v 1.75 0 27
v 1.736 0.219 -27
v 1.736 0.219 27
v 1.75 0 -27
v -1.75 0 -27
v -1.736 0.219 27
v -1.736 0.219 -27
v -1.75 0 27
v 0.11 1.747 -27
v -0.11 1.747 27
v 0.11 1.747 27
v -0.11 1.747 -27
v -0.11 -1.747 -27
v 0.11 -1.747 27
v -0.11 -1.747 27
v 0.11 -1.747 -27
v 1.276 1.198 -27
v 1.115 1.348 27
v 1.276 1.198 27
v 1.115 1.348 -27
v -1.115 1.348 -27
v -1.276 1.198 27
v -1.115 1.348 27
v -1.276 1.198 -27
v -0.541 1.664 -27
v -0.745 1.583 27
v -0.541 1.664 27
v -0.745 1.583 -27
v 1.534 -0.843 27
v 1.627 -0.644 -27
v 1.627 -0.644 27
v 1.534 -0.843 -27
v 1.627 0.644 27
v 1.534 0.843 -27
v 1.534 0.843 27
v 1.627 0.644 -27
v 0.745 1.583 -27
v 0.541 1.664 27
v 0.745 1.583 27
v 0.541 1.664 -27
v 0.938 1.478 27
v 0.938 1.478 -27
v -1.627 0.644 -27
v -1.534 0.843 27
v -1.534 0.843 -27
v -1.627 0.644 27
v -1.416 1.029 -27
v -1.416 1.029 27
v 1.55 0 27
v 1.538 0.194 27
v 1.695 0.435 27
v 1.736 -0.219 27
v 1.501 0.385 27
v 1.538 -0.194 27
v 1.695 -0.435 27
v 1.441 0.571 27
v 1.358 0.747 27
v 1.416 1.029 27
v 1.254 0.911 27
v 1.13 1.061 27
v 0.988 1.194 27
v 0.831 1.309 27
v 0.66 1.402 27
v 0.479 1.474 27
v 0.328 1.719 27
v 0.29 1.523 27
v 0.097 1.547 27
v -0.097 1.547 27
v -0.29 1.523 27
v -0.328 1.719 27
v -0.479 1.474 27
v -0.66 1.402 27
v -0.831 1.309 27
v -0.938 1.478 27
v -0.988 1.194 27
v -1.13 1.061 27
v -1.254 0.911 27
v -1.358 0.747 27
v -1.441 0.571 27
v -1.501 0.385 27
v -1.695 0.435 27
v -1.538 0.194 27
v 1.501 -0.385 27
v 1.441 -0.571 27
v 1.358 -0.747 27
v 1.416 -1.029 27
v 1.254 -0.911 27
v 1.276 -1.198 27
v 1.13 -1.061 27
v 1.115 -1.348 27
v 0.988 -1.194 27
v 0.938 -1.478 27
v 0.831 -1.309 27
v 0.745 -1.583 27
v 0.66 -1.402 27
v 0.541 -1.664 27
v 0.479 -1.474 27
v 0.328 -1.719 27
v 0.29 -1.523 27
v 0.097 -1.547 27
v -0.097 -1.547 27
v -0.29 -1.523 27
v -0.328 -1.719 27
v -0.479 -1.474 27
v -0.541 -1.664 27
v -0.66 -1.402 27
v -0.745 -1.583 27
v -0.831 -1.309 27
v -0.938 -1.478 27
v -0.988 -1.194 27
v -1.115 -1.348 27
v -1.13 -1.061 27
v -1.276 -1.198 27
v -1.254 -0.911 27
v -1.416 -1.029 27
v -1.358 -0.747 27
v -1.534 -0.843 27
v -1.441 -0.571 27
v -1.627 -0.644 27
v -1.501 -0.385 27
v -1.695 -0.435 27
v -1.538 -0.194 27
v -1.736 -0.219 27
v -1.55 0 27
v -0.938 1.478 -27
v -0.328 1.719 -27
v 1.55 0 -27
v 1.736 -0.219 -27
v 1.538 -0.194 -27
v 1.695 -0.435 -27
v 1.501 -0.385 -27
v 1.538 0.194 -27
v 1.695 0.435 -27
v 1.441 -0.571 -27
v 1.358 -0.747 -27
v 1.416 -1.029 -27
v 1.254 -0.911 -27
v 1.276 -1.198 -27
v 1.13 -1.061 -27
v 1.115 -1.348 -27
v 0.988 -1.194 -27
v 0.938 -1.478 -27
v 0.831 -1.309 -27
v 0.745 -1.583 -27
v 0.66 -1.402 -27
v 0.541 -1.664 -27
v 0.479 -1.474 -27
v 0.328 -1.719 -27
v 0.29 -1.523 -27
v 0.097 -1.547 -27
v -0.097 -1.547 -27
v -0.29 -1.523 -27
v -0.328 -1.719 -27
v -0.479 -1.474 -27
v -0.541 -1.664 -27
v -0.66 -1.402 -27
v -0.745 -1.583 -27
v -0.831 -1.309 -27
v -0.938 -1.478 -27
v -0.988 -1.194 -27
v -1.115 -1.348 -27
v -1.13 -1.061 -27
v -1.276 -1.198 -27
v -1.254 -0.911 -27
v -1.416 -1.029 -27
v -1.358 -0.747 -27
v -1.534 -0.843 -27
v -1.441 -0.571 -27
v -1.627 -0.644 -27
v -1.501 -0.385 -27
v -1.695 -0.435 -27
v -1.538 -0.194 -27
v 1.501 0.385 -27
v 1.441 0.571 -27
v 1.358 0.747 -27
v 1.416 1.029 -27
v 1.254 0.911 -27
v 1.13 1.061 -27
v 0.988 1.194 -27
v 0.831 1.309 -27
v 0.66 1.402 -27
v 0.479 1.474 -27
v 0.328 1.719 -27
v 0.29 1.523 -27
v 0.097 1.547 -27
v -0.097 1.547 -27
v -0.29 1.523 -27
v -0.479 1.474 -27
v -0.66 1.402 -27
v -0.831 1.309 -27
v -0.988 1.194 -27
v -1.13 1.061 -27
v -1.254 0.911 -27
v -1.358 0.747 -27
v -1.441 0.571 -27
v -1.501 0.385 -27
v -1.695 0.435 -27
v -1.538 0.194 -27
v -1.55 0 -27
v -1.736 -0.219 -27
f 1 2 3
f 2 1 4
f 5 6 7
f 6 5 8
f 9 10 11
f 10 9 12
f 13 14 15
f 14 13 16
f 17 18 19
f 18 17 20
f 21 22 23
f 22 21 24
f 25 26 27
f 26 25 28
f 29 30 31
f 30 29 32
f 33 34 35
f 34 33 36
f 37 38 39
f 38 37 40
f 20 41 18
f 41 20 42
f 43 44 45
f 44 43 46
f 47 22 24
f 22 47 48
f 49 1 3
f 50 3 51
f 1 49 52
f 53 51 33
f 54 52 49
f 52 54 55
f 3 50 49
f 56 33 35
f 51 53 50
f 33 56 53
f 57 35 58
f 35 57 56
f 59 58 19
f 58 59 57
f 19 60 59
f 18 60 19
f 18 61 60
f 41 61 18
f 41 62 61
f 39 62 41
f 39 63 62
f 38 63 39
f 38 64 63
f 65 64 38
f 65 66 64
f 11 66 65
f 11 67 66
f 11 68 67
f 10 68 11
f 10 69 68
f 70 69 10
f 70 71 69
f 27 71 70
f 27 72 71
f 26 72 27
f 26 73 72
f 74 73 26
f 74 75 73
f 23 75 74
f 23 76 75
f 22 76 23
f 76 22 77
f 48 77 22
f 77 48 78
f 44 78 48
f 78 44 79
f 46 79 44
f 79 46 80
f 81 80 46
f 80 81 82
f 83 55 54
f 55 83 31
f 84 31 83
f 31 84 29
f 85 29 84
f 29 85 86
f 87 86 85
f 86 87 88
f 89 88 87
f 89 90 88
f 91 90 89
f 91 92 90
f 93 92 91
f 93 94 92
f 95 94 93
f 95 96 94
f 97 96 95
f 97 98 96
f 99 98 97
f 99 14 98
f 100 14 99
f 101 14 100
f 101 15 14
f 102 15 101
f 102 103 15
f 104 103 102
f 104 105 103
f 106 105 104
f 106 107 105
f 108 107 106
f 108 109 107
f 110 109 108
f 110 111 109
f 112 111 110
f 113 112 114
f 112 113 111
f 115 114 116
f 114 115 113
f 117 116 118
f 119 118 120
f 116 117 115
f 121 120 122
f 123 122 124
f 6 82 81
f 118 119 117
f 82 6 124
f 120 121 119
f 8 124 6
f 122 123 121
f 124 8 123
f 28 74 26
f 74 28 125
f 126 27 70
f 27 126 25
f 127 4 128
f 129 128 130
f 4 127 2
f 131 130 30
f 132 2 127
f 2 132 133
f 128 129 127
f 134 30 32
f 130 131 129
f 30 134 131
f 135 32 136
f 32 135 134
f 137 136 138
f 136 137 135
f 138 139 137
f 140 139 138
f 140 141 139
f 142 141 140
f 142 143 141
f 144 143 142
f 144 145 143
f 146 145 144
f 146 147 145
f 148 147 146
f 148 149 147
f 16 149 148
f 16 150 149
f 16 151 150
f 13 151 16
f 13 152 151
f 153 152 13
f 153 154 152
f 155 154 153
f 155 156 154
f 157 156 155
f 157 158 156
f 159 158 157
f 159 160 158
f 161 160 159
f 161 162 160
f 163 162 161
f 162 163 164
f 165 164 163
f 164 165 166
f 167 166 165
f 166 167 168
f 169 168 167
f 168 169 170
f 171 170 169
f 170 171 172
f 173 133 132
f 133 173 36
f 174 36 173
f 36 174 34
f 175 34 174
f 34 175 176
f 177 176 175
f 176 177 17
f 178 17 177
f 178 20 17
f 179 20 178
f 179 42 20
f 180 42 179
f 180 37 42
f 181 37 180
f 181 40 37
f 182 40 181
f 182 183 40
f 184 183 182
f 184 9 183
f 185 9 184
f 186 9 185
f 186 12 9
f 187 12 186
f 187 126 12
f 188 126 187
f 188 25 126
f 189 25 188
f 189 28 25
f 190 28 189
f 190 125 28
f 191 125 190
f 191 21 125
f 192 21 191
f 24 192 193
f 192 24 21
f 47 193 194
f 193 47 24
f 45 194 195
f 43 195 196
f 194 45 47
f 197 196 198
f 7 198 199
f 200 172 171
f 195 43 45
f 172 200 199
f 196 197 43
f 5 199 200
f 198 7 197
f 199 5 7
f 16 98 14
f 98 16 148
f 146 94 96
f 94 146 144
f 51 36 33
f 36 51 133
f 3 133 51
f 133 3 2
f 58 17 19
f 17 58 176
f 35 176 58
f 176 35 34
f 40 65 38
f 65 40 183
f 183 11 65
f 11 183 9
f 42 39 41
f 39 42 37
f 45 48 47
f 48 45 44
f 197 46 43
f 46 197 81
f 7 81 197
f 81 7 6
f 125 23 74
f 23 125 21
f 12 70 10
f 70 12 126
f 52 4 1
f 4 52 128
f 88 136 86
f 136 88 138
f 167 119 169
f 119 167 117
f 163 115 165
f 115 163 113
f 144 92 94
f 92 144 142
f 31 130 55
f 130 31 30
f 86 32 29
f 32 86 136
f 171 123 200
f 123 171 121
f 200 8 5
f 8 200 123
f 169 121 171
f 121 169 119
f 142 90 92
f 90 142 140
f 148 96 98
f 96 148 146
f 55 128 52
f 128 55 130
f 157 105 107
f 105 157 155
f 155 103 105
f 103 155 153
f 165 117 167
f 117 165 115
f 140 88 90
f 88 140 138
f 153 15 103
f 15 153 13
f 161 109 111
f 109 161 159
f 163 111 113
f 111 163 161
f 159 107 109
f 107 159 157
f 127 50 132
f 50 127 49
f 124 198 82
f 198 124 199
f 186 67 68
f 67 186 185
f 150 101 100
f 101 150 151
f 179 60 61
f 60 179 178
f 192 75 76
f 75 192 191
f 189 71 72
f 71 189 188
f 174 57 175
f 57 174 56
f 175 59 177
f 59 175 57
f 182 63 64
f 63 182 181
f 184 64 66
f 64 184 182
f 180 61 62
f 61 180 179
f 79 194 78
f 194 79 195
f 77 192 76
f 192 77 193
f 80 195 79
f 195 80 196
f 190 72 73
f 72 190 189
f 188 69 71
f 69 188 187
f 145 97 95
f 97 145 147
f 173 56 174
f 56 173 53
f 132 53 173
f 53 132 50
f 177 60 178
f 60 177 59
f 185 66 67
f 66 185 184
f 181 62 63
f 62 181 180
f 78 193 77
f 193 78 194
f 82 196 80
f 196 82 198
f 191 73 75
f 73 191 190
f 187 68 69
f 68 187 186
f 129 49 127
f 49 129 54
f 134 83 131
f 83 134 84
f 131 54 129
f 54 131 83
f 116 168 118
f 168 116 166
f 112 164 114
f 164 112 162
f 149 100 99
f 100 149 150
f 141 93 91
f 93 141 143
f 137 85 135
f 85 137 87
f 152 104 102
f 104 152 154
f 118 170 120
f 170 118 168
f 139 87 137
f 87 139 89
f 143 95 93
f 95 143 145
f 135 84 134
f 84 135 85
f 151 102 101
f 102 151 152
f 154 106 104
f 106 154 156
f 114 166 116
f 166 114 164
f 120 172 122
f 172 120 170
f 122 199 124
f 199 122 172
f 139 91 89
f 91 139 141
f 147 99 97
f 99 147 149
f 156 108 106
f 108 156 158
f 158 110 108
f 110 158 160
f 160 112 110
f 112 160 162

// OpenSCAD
$fn = 50;


difference() {
	union() {
		translate(v = [0, 0, -27.0000000000]) {
			cylinder(h = 54, r = 1.7500000000);
		}
	}
	union() {
		translate(v = [0, 0, -100.0000000000]) {
			cylinder(h = 200, r = 1.5500000000);
		}
	}
}
